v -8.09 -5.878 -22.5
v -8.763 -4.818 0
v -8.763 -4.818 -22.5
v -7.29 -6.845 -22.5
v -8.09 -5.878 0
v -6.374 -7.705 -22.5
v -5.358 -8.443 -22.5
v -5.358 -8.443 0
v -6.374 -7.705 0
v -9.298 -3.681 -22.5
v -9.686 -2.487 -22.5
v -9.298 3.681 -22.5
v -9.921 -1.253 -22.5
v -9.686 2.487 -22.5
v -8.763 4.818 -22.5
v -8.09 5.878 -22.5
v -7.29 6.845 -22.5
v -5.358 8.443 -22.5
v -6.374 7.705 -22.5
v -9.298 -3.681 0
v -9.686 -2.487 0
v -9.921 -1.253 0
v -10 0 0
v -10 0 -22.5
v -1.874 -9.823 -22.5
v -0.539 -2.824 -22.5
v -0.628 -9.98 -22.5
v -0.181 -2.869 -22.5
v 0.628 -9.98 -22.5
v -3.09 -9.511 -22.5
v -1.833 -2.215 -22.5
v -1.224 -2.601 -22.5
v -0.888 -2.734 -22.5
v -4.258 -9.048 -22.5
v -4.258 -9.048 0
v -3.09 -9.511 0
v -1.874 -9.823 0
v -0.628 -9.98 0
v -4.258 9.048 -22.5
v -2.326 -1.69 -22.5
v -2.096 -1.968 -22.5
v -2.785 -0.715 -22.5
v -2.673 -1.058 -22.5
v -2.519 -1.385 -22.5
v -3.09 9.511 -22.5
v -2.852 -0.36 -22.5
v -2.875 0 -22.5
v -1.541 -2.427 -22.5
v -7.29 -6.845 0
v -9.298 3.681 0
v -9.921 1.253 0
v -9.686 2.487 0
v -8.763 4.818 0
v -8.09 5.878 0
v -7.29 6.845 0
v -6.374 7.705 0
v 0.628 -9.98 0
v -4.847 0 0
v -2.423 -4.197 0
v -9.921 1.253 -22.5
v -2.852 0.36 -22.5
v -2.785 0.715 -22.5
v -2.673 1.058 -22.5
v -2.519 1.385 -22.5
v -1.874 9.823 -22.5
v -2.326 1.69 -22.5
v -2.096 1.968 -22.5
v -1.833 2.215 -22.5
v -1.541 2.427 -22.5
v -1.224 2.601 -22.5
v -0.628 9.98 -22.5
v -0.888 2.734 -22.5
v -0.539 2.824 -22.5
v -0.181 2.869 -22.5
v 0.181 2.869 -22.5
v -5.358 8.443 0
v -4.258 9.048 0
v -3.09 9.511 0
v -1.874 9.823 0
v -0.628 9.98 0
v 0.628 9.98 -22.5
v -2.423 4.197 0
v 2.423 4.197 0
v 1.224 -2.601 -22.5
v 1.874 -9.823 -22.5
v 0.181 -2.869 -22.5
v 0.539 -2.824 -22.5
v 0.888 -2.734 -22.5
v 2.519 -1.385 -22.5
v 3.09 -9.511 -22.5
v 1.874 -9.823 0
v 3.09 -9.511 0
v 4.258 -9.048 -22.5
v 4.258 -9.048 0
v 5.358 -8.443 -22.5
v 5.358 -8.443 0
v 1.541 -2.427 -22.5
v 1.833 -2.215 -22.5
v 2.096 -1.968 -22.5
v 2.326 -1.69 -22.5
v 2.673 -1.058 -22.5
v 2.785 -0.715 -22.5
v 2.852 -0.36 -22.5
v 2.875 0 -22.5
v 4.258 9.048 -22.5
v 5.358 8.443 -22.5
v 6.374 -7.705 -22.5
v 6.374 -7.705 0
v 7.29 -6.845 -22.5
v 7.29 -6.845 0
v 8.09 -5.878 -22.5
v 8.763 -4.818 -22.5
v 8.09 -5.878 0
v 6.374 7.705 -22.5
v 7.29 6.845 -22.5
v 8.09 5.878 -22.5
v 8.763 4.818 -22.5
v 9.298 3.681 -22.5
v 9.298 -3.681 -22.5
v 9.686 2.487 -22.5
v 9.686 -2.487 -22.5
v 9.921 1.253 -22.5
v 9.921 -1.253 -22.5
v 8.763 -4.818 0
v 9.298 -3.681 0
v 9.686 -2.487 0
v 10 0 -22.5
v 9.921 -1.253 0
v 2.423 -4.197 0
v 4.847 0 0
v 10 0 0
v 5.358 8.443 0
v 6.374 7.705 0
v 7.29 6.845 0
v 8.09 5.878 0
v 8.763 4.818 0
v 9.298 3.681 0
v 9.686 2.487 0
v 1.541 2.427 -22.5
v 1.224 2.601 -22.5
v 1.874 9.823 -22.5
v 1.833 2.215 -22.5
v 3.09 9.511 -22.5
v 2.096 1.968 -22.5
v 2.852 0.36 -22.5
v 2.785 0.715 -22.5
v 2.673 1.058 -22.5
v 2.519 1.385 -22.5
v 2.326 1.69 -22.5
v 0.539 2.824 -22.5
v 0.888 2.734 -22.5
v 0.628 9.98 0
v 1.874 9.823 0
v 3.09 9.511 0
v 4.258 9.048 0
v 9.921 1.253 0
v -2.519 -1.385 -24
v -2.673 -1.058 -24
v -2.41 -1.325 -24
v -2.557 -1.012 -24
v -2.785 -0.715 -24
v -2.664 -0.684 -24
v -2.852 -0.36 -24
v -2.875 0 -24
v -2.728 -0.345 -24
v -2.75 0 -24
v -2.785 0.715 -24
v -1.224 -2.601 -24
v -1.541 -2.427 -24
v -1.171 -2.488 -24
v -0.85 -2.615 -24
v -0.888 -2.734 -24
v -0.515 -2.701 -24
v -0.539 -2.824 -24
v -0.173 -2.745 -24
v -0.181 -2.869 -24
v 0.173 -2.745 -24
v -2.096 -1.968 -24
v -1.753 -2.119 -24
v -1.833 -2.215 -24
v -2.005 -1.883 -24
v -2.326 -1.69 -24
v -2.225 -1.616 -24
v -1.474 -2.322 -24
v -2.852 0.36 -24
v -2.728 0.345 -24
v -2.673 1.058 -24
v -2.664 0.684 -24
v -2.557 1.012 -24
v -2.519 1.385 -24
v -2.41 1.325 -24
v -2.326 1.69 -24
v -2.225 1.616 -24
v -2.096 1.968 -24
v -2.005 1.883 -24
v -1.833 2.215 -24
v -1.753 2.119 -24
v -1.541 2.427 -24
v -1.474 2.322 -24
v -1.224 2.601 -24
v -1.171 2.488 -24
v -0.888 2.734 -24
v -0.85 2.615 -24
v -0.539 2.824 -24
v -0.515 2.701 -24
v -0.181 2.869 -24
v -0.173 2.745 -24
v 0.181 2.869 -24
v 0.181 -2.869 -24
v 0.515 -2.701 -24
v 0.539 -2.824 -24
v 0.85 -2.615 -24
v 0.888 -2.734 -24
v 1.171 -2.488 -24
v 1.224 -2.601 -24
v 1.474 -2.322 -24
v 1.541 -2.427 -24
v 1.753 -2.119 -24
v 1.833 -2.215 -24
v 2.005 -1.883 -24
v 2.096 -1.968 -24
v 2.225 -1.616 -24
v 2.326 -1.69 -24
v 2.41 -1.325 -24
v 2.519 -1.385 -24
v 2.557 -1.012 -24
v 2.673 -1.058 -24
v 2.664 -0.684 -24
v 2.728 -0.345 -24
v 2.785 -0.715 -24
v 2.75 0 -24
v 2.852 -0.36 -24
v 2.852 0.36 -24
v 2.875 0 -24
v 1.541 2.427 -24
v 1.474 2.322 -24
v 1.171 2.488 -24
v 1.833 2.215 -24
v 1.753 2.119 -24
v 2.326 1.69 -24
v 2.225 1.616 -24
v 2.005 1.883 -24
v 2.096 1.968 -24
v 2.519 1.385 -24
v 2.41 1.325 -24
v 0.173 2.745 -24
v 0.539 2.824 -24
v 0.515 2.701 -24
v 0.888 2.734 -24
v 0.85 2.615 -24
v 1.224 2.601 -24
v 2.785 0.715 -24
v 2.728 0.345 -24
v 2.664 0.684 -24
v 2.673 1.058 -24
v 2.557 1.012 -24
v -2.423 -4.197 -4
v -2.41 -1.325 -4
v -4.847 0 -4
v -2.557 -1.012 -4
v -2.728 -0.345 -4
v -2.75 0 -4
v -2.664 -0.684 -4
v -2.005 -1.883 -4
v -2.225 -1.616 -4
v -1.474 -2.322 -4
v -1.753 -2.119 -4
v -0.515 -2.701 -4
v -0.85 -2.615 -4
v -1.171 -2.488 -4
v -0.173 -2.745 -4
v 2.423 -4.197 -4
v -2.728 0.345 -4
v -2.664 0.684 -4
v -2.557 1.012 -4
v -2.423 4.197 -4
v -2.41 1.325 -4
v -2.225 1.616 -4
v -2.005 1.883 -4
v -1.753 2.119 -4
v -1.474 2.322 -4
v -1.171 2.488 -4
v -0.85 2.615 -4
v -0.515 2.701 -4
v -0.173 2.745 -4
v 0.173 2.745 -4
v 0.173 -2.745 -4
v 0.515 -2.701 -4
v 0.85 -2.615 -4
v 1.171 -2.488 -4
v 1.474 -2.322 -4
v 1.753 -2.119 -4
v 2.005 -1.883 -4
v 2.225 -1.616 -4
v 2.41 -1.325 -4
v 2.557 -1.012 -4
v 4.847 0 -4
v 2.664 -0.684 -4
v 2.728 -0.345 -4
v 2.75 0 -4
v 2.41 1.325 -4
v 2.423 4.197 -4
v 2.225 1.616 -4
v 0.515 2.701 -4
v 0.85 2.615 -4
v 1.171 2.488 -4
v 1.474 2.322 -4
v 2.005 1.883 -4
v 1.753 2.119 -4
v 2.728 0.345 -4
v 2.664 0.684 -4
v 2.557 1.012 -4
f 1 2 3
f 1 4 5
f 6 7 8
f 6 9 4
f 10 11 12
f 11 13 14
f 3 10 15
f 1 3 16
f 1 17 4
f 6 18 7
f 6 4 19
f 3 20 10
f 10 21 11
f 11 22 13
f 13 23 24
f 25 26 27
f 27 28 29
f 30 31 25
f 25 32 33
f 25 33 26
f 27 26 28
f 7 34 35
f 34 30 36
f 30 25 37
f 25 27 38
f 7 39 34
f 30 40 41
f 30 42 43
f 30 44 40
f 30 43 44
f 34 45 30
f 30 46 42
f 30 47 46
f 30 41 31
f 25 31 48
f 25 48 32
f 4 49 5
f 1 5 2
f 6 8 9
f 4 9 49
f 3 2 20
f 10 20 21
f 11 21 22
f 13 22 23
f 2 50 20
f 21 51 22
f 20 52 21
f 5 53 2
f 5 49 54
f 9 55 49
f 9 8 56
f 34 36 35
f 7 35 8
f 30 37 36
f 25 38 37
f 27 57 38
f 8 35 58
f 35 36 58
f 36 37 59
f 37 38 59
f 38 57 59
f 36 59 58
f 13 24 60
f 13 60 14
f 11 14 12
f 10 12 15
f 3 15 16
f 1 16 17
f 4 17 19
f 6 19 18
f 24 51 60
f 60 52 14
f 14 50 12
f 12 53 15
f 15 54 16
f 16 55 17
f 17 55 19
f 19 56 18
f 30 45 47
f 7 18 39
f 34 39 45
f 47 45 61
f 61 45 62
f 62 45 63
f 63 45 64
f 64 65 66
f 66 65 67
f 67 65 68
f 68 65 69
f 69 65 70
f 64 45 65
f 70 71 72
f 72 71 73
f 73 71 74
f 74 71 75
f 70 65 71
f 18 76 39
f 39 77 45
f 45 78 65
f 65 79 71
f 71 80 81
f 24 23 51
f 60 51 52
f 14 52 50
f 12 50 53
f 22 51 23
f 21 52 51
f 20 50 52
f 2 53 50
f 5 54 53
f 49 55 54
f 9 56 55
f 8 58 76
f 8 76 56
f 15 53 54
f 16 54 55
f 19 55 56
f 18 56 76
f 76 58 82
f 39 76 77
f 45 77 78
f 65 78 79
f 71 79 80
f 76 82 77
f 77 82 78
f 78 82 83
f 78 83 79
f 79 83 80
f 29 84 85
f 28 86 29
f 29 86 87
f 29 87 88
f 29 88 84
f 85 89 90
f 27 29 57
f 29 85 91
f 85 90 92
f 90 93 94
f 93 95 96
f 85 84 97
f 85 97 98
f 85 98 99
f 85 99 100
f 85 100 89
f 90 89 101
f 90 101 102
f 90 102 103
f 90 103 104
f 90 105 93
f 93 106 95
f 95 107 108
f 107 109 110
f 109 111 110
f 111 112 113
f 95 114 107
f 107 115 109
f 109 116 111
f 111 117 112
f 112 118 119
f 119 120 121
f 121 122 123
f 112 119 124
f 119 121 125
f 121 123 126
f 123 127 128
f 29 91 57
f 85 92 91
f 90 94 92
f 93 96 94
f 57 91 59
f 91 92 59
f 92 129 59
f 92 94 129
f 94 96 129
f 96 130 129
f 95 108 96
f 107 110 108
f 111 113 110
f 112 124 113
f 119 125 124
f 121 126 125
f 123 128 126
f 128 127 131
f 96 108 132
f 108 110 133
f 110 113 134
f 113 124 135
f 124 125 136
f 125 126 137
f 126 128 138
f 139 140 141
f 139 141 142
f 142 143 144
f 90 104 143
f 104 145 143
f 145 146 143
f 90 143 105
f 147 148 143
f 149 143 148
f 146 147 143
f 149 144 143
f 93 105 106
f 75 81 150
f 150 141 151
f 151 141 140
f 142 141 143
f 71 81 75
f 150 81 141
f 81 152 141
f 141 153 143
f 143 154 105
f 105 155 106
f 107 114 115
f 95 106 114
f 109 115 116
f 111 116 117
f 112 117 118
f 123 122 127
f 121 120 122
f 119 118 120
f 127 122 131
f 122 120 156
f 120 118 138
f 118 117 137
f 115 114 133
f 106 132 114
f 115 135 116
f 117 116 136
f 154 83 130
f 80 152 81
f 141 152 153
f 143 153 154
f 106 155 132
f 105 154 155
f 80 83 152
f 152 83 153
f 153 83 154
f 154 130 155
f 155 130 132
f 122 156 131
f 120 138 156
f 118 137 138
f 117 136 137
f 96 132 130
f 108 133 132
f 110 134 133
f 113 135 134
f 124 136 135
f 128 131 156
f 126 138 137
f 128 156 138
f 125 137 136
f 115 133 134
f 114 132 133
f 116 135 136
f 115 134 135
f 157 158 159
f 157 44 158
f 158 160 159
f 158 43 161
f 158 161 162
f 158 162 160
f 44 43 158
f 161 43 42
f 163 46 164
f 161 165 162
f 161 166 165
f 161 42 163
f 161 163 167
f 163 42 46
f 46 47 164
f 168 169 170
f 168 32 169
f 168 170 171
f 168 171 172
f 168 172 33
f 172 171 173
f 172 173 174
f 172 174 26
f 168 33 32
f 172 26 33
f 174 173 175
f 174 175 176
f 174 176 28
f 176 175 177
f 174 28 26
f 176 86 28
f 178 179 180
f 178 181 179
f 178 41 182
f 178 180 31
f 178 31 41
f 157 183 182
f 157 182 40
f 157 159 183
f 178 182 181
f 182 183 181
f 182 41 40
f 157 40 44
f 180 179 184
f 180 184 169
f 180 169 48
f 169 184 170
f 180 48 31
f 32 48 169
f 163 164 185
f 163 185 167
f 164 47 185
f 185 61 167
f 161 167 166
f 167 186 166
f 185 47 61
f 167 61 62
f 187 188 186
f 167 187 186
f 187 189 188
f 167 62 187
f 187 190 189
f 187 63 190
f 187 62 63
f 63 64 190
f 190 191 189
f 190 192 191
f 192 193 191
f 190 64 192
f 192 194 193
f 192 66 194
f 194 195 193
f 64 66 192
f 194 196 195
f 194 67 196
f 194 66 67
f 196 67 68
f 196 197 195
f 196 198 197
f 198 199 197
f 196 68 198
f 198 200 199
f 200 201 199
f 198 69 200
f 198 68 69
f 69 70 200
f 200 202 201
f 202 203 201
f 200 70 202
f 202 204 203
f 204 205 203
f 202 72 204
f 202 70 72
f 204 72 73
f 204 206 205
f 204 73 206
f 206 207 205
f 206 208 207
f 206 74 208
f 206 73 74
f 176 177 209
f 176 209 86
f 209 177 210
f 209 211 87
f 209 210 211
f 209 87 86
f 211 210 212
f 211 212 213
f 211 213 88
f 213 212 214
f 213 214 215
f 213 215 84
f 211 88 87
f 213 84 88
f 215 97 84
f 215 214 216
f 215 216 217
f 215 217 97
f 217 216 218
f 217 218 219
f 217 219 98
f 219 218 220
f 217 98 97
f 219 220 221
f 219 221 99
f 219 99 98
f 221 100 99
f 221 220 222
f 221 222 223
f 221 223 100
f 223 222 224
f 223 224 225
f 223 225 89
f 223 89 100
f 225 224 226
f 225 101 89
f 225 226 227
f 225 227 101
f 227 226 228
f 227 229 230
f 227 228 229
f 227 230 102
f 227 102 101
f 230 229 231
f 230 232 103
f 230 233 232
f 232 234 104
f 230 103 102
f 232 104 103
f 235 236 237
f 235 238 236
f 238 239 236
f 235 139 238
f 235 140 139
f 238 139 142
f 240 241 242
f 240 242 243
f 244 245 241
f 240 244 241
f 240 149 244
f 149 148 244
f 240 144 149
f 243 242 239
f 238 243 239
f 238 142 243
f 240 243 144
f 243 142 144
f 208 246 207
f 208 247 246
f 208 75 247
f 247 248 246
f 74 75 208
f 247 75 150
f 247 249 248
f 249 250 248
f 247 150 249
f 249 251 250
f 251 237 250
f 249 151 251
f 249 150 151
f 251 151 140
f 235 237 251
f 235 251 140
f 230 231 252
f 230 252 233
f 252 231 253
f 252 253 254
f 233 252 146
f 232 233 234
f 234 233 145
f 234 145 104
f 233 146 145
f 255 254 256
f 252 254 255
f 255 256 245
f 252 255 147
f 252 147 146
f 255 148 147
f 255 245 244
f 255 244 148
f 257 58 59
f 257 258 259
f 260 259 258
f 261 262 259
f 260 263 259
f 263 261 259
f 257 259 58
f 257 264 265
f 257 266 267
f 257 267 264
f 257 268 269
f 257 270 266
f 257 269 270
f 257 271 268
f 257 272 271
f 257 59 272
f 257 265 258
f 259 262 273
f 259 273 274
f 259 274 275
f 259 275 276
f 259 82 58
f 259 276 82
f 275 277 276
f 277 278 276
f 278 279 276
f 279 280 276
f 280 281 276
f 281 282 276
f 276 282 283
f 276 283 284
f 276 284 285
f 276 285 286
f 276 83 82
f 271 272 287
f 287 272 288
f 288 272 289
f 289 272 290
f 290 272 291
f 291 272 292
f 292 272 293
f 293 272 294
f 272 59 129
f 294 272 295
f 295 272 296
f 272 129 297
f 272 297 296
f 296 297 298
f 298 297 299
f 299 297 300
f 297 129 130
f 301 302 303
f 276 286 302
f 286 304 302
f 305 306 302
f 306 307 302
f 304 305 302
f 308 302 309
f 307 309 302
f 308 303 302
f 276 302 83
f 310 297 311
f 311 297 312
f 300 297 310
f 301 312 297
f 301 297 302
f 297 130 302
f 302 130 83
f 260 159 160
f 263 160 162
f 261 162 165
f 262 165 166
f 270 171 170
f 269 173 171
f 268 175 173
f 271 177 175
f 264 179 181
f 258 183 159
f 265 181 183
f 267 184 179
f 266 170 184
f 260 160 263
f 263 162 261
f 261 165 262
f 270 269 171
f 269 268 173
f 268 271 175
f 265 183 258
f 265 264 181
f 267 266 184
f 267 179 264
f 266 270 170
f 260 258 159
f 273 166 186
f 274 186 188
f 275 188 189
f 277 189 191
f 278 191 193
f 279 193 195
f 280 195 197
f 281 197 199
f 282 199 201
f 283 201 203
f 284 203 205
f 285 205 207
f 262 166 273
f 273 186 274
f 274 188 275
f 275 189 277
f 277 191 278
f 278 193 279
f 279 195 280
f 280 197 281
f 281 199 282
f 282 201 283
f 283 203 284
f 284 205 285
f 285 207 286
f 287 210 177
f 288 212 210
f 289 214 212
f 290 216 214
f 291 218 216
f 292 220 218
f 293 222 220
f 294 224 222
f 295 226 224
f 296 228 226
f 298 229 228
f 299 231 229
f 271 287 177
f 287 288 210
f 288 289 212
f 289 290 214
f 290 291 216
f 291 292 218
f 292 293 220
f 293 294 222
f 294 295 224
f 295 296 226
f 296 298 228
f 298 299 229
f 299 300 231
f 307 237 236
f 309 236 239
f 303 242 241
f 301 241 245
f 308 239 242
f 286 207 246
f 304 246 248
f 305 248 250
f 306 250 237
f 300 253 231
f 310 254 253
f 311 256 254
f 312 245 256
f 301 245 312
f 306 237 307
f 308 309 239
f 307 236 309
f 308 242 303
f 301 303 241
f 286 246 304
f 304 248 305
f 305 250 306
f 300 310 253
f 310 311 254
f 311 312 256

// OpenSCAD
$fn = 50;

difference() {
	union() {
		translate(v = [0, 0, -22.5]) {
			cylinder(h = 22.5, r = 10.0);
		}
		#translate(v = [0, 0, -24.0]) {
			cylinder(h = 24, r = 2.875);
		}
	}
	union() {
		translate(v = [0, 0, 0]) {
			rotate(a = [0, 0, 0]) {
				difference() {
					union() {
						translate(v = [0, 0, -4]) {
							linear_extrude(height = 4) {
								polygon(points = [[4.8468, 0.0], [2.4234000000000004, 4.197451927062417], [-2.423399999999999, 4.197451927062417], [-4.8468, 5.935618106107392e-16], [-2.423400000000002, -4.197451927062416], [2.423399999999997, -4.197451927062419]]);
							}
						}
					}
					union();
				}
			}
		}
		#translate(v = [0, 0, -100.0]) {
			cylinder(h = 200, r = 2.75);
		}
	}
}
